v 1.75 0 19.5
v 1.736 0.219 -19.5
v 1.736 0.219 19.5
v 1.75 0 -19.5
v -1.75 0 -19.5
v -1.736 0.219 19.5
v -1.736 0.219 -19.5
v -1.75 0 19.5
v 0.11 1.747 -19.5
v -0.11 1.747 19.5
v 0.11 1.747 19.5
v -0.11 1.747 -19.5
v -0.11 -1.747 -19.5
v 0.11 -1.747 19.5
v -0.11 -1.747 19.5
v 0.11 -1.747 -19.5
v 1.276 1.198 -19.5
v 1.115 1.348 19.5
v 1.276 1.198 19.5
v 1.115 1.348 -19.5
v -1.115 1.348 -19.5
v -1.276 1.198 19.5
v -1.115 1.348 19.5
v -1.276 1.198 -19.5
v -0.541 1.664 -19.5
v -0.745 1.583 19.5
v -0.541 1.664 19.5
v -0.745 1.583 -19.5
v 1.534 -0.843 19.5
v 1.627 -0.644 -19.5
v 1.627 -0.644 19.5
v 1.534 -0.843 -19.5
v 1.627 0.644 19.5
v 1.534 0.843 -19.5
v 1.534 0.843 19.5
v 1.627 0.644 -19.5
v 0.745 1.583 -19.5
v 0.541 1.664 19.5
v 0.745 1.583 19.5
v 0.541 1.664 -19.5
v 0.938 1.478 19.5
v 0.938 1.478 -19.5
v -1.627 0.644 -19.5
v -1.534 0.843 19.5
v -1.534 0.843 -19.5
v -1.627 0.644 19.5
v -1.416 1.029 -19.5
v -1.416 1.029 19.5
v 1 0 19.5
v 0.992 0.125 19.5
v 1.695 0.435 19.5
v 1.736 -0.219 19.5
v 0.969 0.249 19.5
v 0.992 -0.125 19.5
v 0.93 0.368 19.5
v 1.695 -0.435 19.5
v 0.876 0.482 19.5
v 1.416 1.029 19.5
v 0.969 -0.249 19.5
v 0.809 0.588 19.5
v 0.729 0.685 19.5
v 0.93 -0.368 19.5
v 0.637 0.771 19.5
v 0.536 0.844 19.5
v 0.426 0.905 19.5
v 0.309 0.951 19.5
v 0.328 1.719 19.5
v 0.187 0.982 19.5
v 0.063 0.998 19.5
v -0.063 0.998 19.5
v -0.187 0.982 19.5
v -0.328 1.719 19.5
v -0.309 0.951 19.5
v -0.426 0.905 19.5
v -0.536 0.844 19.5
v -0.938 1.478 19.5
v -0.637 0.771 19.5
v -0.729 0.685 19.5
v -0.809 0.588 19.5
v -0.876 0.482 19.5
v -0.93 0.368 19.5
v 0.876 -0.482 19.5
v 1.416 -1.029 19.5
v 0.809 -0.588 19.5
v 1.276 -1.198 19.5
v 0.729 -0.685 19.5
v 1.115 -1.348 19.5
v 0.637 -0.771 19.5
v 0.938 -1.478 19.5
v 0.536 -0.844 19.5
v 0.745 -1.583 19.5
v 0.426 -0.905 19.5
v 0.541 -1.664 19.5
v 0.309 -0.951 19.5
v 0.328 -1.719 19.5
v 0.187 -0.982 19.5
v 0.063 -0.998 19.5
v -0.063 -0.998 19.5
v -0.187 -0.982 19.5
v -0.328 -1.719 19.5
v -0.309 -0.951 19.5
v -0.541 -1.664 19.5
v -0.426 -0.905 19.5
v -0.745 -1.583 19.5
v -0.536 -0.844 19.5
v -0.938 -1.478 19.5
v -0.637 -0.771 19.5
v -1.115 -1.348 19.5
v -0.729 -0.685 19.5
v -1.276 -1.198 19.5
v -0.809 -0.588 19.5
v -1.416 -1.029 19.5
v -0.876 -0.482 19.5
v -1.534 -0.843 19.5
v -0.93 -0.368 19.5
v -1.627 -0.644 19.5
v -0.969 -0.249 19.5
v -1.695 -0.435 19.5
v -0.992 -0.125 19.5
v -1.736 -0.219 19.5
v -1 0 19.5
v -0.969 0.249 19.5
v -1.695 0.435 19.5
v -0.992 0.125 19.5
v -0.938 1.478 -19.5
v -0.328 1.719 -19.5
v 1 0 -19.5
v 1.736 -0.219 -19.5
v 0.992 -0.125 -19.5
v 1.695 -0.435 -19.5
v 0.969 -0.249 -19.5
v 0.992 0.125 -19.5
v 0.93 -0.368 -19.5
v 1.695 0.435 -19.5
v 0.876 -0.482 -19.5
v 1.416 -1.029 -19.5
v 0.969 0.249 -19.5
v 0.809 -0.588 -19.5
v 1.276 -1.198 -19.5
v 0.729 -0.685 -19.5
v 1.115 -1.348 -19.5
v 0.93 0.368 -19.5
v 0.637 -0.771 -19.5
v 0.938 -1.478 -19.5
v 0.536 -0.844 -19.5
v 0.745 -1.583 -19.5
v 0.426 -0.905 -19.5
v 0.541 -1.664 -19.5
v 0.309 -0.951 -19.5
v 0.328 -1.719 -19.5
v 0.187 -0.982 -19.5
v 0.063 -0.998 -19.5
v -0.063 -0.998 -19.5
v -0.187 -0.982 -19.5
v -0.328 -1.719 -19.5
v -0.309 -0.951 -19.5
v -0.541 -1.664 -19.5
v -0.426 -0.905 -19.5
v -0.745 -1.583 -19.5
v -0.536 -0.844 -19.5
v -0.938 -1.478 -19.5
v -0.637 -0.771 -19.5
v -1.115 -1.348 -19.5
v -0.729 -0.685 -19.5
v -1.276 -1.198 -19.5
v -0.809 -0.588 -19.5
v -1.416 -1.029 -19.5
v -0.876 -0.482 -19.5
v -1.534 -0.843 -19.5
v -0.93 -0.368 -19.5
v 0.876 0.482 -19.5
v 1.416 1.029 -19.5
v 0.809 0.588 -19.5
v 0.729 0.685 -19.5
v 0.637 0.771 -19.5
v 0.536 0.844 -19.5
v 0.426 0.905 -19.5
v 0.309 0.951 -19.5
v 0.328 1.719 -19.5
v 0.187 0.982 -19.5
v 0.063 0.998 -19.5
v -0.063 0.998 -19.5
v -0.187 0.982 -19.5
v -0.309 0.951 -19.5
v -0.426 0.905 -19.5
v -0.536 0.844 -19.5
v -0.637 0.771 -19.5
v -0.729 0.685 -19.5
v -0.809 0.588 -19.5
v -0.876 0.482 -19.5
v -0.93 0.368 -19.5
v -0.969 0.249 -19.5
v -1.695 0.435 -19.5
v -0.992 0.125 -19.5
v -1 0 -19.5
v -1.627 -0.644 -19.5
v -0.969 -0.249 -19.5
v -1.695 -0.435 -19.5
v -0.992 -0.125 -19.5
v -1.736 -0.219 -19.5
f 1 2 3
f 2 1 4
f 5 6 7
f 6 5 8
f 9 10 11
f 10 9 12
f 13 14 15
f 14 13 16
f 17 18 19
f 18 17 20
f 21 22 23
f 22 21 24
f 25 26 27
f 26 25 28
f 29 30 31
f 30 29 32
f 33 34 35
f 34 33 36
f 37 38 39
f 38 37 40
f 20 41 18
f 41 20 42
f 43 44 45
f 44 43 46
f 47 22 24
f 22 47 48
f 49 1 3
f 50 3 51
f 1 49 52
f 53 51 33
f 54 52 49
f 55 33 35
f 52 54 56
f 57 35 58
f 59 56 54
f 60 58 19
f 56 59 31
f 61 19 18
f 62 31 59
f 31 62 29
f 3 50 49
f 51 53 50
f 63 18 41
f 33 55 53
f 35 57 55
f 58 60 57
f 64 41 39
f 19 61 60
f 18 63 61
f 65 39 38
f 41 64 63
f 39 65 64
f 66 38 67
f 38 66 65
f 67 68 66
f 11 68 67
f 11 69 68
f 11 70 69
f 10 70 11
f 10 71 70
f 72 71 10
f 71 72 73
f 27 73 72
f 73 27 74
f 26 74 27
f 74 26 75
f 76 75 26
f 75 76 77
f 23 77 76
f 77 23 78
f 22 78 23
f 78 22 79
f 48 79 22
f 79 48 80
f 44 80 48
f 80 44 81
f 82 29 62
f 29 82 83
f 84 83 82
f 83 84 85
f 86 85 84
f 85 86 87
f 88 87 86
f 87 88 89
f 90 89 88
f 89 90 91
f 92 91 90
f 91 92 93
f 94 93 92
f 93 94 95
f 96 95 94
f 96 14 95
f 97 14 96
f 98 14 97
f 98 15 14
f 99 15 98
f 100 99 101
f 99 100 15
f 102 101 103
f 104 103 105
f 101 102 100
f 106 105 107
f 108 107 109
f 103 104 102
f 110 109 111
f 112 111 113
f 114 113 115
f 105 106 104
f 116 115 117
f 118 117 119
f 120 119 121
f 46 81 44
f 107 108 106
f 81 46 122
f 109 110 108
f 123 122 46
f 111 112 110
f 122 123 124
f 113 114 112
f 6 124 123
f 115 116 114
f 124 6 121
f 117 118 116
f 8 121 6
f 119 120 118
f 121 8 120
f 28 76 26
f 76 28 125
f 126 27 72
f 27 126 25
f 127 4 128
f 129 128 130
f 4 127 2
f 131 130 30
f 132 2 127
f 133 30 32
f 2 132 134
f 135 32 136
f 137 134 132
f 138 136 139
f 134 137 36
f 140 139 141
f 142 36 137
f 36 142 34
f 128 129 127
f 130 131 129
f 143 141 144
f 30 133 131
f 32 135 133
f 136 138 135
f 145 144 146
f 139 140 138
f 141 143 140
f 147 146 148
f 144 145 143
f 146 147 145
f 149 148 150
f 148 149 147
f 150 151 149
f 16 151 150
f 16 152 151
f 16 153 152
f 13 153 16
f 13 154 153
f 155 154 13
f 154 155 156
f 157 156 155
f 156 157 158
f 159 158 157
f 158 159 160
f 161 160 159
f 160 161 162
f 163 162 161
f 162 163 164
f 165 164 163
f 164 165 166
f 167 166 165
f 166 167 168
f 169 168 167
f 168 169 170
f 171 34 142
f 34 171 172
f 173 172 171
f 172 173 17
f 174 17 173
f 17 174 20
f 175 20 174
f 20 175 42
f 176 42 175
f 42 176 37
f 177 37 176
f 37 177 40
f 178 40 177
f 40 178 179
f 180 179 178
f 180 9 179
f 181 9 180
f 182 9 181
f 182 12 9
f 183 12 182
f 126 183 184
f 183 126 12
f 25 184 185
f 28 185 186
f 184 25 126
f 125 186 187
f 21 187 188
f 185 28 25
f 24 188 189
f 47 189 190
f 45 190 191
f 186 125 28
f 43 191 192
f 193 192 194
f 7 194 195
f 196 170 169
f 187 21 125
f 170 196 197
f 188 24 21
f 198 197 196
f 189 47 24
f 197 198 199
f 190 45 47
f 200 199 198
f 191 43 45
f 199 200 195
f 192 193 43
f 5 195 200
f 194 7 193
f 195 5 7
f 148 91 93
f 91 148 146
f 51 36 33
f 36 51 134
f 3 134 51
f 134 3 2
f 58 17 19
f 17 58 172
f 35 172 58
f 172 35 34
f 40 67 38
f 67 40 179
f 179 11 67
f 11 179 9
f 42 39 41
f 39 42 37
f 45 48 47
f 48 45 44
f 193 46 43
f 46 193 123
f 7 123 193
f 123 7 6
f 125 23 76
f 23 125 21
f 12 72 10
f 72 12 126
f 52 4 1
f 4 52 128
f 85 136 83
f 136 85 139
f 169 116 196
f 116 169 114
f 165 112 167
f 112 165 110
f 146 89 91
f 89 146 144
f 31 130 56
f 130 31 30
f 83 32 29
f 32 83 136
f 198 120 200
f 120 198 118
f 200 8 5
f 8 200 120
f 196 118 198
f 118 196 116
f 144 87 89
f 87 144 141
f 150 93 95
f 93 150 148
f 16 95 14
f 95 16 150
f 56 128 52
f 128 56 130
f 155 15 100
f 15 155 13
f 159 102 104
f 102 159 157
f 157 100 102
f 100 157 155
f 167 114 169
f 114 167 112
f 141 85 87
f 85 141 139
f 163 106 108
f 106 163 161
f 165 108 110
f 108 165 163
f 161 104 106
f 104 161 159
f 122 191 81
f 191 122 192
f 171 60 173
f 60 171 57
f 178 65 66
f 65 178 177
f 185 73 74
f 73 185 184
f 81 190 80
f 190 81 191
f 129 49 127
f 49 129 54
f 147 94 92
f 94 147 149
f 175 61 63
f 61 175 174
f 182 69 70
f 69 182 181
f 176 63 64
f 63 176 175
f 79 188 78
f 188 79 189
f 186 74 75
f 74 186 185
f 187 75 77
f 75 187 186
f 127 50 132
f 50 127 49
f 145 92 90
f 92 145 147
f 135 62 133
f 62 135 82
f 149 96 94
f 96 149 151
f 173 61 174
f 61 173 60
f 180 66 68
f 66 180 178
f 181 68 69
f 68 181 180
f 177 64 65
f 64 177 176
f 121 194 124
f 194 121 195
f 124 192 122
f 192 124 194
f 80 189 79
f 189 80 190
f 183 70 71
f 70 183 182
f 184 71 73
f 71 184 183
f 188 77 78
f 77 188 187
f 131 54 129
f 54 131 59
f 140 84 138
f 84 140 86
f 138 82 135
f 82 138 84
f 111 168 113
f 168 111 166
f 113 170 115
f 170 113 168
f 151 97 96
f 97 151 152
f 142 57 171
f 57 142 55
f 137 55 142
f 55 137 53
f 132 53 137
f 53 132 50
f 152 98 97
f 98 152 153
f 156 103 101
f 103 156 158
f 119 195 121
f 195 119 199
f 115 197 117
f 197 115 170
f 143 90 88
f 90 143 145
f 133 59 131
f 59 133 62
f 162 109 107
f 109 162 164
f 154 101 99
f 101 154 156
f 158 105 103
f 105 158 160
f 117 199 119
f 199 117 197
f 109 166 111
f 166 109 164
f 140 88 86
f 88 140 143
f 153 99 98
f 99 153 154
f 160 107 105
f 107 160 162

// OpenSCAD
$fn = 50;


difference() {
	union() {
		translate(v = [0, 0, -19.5000000000]) {
			cylinder(h = 39, r = 1.7500000000);
		}
	}
	union() {
		translate(v = [0, 0, -100.0000000000]) {
			cylinder(h = 200, r = 1.0000000000);
		}
	}
}
